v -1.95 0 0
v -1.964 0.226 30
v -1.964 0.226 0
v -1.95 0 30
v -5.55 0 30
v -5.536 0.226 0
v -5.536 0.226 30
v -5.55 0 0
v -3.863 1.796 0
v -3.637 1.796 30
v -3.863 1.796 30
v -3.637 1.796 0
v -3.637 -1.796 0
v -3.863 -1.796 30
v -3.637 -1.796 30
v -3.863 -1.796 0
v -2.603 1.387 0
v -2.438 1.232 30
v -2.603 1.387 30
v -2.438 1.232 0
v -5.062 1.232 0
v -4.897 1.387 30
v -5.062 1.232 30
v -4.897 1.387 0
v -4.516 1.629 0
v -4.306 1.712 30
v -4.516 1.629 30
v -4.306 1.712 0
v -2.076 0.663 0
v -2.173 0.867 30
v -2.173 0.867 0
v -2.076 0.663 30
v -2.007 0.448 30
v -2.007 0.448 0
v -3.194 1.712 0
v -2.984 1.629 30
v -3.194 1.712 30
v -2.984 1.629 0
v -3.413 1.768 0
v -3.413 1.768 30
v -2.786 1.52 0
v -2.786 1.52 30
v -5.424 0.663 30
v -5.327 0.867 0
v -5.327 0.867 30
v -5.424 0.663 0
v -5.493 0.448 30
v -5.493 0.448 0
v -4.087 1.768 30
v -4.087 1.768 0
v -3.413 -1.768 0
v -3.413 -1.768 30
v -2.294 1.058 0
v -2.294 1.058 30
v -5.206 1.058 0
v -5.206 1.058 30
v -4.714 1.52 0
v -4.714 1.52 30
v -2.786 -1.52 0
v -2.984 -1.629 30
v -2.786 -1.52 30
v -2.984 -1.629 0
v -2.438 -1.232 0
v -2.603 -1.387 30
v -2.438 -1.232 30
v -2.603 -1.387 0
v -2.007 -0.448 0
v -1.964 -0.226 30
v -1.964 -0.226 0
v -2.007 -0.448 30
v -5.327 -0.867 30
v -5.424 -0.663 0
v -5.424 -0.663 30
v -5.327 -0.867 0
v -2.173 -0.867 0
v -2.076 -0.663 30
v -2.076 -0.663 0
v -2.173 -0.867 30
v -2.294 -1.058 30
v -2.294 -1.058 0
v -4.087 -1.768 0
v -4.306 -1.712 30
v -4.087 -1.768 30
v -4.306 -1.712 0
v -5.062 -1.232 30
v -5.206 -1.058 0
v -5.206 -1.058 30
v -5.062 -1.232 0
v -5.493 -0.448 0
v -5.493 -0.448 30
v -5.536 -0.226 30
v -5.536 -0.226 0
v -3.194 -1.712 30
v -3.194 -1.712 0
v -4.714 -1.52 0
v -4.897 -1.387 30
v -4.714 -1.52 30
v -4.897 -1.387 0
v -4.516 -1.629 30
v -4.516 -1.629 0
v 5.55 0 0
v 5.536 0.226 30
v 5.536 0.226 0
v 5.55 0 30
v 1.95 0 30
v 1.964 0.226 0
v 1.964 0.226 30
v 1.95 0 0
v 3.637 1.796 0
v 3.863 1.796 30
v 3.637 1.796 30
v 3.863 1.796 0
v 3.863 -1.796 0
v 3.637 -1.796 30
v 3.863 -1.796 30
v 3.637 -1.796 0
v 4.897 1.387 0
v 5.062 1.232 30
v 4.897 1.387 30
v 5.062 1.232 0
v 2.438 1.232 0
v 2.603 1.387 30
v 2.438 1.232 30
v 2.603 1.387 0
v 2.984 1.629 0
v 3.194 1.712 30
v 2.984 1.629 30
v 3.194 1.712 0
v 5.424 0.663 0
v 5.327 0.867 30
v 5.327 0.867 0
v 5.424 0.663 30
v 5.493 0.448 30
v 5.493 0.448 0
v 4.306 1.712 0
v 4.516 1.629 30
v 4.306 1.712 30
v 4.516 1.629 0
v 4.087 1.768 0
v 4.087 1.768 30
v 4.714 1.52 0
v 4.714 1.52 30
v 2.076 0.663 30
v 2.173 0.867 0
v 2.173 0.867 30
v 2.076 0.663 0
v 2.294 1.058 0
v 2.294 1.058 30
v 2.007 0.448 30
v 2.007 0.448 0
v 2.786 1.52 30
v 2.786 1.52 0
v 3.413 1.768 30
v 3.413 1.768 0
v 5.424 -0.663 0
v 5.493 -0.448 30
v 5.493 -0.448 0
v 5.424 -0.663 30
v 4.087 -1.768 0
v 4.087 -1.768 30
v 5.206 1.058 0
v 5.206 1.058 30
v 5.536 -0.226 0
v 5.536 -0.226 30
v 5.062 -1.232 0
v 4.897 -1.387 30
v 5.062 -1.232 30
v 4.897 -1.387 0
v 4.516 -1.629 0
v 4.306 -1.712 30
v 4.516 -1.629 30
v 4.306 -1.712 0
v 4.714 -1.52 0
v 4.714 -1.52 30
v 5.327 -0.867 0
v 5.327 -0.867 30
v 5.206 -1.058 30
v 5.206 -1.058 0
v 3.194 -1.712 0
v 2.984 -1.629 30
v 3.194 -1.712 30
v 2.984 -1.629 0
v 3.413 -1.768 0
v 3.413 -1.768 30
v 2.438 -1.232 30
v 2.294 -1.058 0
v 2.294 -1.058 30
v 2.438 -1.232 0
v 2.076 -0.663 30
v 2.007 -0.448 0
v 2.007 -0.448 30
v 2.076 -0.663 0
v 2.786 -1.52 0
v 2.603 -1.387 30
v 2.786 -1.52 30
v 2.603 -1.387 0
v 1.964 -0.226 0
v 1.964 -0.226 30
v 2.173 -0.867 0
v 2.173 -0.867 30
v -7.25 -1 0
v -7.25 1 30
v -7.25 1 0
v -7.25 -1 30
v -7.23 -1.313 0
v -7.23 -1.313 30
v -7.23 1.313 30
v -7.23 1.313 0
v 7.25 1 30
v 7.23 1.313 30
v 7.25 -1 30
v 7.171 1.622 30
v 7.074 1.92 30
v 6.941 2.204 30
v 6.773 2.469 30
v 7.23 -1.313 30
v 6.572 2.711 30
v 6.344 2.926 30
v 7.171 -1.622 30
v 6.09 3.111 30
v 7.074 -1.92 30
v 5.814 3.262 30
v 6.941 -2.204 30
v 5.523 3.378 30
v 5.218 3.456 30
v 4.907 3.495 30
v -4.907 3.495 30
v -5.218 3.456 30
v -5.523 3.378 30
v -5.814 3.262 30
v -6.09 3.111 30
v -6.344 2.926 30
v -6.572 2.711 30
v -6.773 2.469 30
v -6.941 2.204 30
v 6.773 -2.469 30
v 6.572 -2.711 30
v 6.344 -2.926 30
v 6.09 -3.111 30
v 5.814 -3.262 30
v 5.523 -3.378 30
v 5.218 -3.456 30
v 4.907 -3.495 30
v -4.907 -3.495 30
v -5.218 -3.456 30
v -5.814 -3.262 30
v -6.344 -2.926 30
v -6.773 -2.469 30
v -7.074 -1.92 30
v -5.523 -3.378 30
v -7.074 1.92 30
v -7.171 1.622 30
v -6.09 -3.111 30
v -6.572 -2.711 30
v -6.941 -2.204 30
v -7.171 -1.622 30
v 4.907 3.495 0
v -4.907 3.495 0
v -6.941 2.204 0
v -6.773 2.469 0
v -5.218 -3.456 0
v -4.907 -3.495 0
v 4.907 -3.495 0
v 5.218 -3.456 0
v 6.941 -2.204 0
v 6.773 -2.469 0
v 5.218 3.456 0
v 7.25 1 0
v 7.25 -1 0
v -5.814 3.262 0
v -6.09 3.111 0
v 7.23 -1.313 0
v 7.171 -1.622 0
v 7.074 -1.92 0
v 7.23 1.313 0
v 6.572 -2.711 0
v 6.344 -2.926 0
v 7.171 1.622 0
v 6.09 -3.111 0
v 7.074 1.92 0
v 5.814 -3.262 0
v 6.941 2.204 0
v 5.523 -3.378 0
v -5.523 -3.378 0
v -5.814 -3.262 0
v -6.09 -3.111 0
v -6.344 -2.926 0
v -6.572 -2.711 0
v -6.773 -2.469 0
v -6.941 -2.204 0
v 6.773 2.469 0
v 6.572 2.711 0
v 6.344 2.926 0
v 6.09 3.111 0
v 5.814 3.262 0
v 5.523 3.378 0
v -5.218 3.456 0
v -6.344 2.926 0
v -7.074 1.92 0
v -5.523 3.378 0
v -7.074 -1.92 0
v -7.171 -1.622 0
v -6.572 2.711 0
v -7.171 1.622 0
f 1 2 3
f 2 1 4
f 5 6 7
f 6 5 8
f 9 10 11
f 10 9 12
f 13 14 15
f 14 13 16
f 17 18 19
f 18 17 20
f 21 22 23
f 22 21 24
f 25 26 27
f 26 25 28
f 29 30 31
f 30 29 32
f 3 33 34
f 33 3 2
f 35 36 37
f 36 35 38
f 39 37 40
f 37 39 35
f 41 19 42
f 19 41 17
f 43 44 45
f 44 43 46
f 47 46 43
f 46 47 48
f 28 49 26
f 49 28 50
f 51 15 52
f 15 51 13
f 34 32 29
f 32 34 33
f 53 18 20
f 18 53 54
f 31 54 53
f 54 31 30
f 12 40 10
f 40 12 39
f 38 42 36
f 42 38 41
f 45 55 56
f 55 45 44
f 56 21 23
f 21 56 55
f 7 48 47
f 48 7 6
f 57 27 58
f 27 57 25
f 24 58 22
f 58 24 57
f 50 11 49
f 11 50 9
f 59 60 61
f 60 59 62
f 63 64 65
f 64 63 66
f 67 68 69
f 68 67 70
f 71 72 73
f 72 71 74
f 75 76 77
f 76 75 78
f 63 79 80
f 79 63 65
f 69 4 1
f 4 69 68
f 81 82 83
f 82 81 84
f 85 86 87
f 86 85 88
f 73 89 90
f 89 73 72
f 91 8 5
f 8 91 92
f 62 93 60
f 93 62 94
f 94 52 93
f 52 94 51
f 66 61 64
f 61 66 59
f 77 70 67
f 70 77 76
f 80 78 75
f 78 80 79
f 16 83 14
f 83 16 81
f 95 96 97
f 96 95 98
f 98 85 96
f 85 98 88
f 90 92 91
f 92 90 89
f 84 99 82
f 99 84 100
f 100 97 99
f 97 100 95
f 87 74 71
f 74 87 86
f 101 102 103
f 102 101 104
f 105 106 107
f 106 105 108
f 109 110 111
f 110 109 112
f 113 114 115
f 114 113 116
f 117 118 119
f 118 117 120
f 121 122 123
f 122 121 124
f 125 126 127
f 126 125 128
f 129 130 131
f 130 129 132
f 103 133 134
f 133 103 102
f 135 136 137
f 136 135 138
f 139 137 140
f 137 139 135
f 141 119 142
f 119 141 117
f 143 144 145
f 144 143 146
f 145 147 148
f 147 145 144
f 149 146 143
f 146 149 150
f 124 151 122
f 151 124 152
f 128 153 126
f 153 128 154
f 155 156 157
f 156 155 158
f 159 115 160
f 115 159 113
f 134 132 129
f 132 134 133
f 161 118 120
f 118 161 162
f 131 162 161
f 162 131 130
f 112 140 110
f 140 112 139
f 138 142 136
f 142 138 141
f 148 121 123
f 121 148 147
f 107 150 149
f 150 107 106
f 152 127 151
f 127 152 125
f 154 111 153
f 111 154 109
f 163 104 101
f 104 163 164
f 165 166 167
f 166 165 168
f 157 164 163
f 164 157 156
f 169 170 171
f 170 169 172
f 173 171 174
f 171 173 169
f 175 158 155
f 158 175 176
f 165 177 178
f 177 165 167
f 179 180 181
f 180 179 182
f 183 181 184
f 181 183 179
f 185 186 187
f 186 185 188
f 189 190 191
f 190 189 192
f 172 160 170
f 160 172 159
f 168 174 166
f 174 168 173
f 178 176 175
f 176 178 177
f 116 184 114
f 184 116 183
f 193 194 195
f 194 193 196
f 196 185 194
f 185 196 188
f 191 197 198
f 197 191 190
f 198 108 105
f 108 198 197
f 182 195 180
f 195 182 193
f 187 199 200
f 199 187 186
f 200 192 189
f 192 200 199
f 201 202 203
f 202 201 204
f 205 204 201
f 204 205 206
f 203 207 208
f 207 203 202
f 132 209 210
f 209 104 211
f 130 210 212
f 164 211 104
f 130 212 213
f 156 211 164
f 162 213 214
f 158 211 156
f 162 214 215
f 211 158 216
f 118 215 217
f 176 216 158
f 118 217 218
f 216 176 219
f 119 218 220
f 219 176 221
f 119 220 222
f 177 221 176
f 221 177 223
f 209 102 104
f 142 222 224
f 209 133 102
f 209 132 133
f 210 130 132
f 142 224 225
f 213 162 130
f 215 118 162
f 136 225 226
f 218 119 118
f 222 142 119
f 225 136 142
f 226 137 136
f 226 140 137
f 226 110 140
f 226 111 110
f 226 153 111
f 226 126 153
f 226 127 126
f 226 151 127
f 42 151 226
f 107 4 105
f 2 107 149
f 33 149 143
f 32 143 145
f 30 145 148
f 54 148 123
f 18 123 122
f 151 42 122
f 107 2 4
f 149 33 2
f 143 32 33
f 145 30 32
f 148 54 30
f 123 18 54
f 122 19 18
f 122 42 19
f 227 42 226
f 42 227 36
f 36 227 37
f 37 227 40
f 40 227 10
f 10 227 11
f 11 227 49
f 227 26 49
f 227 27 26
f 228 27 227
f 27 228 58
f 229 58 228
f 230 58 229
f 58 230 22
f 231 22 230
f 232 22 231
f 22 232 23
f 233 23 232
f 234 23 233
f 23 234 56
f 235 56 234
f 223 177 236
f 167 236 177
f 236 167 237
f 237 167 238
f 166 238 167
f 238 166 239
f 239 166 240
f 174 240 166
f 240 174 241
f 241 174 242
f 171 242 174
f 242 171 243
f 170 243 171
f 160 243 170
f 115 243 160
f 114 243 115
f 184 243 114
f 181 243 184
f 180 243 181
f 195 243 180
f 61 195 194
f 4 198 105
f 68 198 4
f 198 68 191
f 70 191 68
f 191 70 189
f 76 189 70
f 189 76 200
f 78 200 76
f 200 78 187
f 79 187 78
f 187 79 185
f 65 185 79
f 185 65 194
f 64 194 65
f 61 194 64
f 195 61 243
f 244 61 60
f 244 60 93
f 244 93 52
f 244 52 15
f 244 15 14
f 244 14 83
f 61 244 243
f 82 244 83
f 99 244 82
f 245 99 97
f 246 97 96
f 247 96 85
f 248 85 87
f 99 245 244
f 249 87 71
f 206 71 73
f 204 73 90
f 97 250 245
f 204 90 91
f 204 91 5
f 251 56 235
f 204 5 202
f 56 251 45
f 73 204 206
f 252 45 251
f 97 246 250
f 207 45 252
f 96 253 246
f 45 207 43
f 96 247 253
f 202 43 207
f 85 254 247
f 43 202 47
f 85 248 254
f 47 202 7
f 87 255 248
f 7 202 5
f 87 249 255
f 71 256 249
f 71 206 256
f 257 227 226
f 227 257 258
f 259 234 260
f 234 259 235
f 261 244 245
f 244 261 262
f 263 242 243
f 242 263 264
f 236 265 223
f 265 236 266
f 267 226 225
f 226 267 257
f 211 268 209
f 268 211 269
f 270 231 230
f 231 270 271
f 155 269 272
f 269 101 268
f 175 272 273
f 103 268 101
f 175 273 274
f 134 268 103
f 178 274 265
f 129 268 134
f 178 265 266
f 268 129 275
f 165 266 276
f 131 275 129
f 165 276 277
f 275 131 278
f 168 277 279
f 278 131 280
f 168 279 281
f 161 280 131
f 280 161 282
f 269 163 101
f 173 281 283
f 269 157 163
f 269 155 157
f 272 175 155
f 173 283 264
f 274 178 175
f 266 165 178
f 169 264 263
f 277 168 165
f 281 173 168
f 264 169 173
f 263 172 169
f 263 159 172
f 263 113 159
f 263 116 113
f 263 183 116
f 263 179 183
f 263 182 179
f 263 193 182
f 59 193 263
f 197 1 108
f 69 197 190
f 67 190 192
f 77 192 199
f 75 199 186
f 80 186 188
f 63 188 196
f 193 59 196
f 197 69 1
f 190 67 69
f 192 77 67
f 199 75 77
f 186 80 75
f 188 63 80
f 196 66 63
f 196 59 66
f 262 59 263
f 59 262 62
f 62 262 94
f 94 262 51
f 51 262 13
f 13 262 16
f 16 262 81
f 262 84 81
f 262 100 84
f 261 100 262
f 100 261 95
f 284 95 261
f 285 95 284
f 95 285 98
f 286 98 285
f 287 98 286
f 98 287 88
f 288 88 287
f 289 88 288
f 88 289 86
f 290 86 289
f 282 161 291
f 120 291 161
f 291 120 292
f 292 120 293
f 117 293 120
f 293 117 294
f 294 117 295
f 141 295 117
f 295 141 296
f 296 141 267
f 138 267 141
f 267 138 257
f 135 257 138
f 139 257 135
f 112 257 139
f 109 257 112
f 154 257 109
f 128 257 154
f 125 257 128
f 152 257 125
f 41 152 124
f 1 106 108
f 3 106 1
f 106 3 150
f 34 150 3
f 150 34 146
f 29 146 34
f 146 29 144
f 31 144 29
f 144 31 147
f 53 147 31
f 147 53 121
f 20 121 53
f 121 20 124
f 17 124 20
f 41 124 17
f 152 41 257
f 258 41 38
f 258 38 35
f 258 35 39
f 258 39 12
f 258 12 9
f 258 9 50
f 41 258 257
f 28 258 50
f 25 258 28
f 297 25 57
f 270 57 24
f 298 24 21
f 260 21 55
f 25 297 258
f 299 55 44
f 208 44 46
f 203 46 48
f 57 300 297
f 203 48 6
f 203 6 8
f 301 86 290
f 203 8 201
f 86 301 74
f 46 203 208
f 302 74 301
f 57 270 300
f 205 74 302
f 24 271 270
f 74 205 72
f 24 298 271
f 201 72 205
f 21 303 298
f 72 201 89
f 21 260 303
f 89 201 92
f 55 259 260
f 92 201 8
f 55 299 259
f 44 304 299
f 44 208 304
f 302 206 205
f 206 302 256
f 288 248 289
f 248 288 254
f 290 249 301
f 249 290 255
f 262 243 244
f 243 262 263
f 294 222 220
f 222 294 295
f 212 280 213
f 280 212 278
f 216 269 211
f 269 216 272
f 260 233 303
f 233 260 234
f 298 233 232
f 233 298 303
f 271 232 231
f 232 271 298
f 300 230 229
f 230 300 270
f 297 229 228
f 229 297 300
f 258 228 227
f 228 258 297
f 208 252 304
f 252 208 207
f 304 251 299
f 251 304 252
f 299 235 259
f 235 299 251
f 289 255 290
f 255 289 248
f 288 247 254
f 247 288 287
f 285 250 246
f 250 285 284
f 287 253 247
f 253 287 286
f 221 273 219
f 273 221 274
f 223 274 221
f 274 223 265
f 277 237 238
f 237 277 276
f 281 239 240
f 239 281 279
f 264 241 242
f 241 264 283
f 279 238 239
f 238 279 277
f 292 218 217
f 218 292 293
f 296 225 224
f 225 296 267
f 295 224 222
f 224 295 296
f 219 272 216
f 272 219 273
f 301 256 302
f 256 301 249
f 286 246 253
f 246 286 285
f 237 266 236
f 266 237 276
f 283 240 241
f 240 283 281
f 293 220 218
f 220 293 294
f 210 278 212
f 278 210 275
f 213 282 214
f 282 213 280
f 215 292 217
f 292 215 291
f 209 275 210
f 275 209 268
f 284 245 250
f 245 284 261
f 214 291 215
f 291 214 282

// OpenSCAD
$fn = 50;


difference() {
	union() {
		translate(v = [0, 0, 0]) {
			rotate(a = [0, 0, 0]) {
				hull() {
					translate(v = [-4.7500000000, 1.0000000000, 0]) {
						rotate(a = [0, 0, 0]) {
							translate(v = [0, 0, 0]) {
								rotate(a = [0, 0, 0]) {
									cylinder(h = 30, r = 2.5000000000);
								}
							}
						}
					}
					translate(v = [4.7500000000, 1.0000000000, 0]) {
						rotate(a = [0, 0, 0]) {
							translate(v = [0, 0, 0]) {
								rotate(a = [0, 0, 0]) {
									cylinder(h = 30, r = 2.5000000000);
								}
							}
						}
					}
					translate(v = [-4.7500000000, -1.0000000000, 0]) {
						rotate(a = [0, 0, 0]) {
							translate(v = [0, 0, 0]) {
								rotate(a = [0, 0, 0]) {
									cylinder(h = 30, r = 2.5000000000);
								}
							}
						}
					}
					translate(v = [4.7500000000, -1.0000000000, 0]) {
						rotate(a = [0, 0, 0]) {
							translate(v = [0, 0, 0]) {
								rotate(a = [0, 0, 0]) {
									cylinder(h = 30, r = 2.5000000000);
								}
							}
						}
					}
				}
			}
		}
	}
	union() {
		translate(v = [-3.7500000000, 0.0000000000, 0]) {
			rotate(a = [0, 0, 0]) {
				translate(v = [0, 0, -50]) {
					rotate(a = [0, 0, 0]) {
						cylinder(h = 100, r = 1.8000000000);
					}
				}
			}
		}
		translate(v = [3.7500000000, 0.0000000000, 0]) {
			rotate(a = [0, 0, 0]) {
				translate(v = [0, 0, -50]) {
					rotate(a = [0, 0, 0]) {
						cylinder(h = 100, r = 1.8000000000);
					}
				}
			}
		}
	}
}
